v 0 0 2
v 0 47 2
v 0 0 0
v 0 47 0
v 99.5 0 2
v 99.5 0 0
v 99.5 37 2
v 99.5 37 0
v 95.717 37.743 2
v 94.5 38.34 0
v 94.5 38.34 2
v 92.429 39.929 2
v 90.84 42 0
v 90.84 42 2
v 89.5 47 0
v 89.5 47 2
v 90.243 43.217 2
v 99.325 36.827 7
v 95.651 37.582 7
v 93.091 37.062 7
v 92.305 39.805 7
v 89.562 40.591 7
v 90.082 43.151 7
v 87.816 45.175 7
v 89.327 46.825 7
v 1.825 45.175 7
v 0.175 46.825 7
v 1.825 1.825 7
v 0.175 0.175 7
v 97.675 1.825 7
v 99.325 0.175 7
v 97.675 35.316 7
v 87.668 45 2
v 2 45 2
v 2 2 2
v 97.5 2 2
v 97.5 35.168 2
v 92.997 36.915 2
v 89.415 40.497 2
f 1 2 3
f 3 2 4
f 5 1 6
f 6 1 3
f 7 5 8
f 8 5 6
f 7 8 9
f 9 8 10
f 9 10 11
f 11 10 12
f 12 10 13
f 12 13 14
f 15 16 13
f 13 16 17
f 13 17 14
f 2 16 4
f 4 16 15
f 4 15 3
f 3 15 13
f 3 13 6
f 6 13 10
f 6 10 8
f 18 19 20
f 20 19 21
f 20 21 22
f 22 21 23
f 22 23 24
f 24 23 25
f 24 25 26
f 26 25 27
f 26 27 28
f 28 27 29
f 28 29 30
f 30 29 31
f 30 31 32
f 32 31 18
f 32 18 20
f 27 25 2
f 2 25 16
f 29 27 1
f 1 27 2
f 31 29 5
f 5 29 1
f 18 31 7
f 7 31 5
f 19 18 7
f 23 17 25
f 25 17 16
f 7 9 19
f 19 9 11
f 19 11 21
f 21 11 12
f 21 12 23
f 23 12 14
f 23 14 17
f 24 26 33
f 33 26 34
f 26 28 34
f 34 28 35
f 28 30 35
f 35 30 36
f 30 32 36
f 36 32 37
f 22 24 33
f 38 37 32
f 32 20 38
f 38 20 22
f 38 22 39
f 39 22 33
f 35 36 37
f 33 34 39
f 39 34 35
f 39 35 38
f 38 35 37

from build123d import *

# Parameters (mm, degrees)
BOSS_EXTRU_1_DEPTH = 2
BOSS_EXTRU_2_DEPTH = 5
BOSS_EXTRU_2_DRAFT = 2


with BuildPart() as part:
    # Esquisse1 → Boss.-Extru.1 (new body)
    with BuildSketch(Plane.XY):
        with BuildLine():
            Line((0, 0), (99.5, 0))
            Line((99.5, 0), (99.5, 37))
            ThreePointArc((99.5, 37), (92.428932188, 39.928932188), (89.5, 47))
            Line((89.5, 47), (0, 47))
            Line((0, 47), (0, 0))
        make_face()
    extrude(amount=BOSS_EXTRU_1_DEPTH)


with BuildPart() as boss_extru_2_tool:
    # Esquisse2 → Boss.-Extru.2 (with draft: the straight prism first)
    with BuildSketch(Plane.XY.offset(2)):
        with BuildLine():
            Line((0, 47), (0, 0))
            Line((0, 0), (99.5, 0))
            Line((99.5, 0), (99.5, 37))
            ThreePointArc((99.5, 37), (92.428932188, 39.928932188), (89.5, 47))
            Line((89.5, 47), (0, 47))
        make_face()
        with BuildLine():
            Line((2, 45), (2, 2))
            Line((2, 2), (97.5, 2))
            Line((97.5, 2), (97.5, 35.167840434))
            ThreePointArc((97.5, 35.167840434), (91.014718626, 38.514718626), (87.667840434, 45))
            Line((87.667840434, 45), (2, 45))
        make_face(mode=Mode.SUBTRACT)
    extrude(amount=BOSS_EXTRU_2_DEPTH)
    # Boss.-Extru.2: the draft: its side faces are tilted about the plane it starts from
    boss_extru_2_sides = [boss_extru_2_tool.faces().sort_by_distance(p)[0] for p in [
        (92.428932188, 39.928932188, 4.5),
        (44.75, 47, 4.5),
        (0, 23.5, 4.5),
        (49.75, 0, 4.5),
        (99.5, 18.5, 4.5),
        (44.833920217, 45, 4.5),
        (91.014718626, 38.514718626, 4.5),
        (97.5, 18.583920217, 4.5),
        (49.75, 2, 4.5),
        (2, 23.5, 4.5),
    ]]
    draft(boss_extru_2_sides, Plane.XY.offset(2), BOSS_EXTRU_2_DRAFT)


with BuildPart() as part_1:
    add(part.part)

    # Boss.-Extru.2: add boss_extru_2_tool
    add(boss_extru_2_tool.part)


solid = part_1.part
